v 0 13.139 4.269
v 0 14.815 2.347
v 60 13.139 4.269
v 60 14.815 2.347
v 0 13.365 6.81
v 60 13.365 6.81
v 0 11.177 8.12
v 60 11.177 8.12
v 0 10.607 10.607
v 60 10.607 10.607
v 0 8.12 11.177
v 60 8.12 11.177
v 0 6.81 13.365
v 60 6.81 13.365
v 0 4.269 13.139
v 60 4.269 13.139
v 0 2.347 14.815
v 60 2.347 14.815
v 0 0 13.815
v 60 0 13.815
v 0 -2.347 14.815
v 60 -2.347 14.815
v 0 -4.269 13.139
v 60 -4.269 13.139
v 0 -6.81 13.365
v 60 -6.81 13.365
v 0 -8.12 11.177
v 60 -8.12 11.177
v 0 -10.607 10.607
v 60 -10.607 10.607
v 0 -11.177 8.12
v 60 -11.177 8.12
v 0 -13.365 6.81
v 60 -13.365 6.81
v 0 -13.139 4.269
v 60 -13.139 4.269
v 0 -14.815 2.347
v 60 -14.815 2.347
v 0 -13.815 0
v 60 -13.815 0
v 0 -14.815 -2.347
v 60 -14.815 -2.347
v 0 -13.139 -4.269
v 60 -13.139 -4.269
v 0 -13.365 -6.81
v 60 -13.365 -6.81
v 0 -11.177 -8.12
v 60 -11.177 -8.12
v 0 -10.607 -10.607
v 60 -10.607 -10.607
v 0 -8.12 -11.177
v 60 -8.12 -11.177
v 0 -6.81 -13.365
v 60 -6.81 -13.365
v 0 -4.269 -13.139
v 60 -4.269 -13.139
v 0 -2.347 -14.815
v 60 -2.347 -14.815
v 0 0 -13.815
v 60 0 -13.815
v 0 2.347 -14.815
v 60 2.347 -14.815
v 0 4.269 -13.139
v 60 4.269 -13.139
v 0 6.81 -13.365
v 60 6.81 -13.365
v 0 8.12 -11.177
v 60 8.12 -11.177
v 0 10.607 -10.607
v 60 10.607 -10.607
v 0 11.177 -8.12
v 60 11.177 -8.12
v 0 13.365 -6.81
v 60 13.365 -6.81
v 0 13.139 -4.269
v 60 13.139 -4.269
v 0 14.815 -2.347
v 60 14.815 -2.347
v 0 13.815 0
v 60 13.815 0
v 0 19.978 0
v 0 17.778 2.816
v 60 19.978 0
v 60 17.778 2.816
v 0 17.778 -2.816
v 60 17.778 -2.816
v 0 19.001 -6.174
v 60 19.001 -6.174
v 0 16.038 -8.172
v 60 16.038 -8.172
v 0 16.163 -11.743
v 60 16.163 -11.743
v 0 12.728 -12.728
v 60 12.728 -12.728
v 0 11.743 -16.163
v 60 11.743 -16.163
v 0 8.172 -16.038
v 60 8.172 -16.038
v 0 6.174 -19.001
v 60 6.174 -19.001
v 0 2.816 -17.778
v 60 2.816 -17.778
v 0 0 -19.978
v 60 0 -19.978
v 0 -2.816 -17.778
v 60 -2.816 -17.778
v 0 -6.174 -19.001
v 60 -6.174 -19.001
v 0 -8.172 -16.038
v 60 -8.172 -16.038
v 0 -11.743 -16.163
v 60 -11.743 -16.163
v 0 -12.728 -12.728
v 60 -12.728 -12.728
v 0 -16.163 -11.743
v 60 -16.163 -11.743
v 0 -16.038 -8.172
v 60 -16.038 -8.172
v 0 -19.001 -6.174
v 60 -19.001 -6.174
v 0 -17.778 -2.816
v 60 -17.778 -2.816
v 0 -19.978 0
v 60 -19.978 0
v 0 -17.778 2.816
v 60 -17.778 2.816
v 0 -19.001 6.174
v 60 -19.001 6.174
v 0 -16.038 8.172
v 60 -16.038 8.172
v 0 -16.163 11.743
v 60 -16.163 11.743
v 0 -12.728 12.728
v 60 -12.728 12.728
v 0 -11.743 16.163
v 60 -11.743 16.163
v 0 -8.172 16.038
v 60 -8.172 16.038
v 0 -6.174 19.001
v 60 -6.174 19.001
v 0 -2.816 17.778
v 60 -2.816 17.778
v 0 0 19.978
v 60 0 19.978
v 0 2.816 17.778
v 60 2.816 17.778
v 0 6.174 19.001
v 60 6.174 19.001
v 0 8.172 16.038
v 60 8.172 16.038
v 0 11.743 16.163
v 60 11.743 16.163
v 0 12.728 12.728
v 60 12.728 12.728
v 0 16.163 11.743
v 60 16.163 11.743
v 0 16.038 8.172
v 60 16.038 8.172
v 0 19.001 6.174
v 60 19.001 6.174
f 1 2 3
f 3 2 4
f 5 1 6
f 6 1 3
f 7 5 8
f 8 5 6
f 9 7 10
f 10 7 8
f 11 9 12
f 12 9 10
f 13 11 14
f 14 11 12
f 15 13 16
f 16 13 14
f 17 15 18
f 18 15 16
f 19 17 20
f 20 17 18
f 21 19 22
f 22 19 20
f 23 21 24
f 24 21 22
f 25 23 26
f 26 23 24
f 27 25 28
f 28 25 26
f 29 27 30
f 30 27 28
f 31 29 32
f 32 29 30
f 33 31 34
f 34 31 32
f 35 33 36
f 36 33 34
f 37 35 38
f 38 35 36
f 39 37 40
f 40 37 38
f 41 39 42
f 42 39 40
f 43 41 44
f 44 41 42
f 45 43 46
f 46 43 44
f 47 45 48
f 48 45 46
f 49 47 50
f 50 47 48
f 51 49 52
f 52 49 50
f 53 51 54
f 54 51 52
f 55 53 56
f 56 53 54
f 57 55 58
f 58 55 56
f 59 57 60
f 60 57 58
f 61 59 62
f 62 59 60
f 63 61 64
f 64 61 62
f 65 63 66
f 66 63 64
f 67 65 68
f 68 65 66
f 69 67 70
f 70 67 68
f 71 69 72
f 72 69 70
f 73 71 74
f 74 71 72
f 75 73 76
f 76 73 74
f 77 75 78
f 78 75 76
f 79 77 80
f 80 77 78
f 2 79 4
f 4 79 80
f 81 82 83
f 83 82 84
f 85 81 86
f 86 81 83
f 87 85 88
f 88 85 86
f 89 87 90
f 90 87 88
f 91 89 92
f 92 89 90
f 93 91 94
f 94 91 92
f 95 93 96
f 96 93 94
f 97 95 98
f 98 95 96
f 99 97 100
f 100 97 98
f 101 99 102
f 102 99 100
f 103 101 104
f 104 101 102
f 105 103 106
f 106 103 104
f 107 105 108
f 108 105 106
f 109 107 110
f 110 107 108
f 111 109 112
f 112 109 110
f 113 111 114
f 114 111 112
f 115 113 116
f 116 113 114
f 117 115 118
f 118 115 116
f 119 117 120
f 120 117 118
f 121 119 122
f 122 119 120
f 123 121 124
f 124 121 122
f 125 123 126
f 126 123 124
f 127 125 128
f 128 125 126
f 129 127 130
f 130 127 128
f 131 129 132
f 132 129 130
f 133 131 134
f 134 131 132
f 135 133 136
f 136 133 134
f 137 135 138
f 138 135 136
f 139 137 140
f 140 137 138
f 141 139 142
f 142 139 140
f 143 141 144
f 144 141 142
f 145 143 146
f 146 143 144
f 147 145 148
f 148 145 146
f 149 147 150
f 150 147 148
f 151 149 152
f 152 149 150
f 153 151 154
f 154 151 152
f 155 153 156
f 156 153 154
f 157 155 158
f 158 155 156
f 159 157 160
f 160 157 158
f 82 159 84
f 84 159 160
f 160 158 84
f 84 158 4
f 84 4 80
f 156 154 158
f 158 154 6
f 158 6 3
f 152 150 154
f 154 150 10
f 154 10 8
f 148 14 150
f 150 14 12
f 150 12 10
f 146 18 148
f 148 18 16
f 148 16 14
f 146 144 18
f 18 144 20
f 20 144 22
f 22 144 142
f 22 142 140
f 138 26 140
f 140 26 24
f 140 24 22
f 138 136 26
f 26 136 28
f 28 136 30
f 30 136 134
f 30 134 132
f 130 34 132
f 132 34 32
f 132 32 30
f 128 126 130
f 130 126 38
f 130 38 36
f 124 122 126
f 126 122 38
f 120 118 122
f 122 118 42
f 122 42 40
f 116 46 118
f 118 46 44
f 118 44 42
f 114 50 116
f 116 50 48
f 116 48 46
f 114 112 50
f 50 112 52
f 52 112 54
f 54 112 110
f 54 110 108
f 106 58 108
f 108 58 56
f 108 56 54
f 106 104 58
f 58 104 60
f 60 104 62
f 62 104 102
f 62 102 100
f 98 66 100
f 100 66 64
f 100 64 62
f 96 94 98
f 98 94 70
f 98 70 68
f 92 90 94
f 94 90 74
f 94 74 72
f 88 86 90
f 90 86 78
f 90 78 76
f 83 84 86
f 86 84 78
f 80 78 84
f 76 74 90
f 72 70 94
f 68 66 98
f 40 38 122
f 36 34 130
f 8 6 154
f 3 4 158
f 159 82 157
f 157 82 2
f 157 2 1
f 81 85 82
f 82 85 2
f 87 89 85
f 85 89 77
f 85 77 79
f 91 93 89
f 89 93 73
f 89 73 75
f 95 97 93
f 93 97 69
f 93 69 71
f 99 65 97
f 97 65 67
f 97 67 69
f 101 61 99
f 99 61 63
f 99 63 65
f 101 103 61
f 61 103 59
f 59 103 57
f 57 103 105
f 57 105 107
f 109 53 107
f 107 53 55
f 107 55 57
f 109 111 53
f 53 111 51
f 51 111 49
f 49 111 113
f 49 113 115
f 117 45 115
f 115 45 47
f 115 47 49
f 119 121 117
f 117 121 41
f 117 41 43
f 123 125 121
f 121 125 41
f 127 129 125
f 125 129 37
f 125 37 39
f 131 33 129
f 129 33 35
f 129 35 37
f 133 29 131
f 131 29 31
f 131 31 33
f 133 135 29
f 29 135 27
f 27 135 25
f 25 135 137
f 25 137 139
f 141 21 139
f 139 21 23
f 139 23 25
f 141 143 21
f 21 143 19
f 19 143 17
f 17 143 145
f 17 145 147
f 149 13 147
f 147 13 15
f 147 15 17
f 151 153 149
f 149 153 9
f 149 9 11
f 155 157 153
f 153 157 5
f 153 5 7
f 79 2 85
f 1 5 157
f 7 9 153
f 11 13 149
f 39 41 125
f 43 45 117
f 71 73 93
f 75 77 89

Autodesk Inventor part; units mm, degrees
ref_plane "YZ Plane" through (0, 0, 0) normal (1, 0, 0) x (0, 1, 0)
ref_plane "XZ Plane" through (0, 0, 0) normal (0, 1, 0) x (-1, 0, 0)
ref_plane "XY Plane" through (0, 0, 0) normal (0, 0, 1) x (1, 0, 0)
sketch "Sketch2" plane through (0, 0, 0) normal (1, 0, 0) x (0, 1, 0)
  circle A0 centre (0, 0) radius 15 construction
  circle A1 centre (0, 0) radius 18 construction
  line L0 (17.7784, 2.8158) -> (17.7784, -2.8158) construction
  line L1 (17.7784, 2.8158) -> (0, 0) construction
  line L2 (0, 0) -> (17.7784, -2.8158) construction
  line L3 (17.7784, 2.8158) -> (19.9784, 0)
  line L4 (19.9784, 0) -> (17.7784, -2.8158)
  line L5 (19.9784, 0) -> (17.7784, 0) construction
  line L6 (14.8153, 2.3465) -> (13.8153, 0)
  line L7 (13.8153, 0) -> (14.8153, -2.3465)
  line L8 (14.8153, 2.3465) -> (14.8153, -2.3465) construction
  line L9 (13.8153, 0) -> (14.8153, 0) construction
  line L10 (16.0381, 8.1718) -> (19.0006, 6.1737)
  line L11 (19.0006, 6.1737) -> (17.7784, 2.8158)
  line L12 (13.3651, 6.8099) -> (13.1392, 4.2692)
  line L13 (13.1392, 4.2692) -> (14.8153, 2.3465)
  line L14 (12.7279, 12.7279) -> (16.1629, 11.743)
  line L15 (16.1629, 11.743) -> (16.0381, 8.1718)
  line L16 (10.6066, 10.6066) -> (11.1768, 8.1204)
  line L17 (11.1768, 8.1204) -> (13.3651, 6.8099)
  line L18 (8.1718, 16.0381) -> (11.743, 16.1629)
  line L19 (11.743, 16.1629) -> (12.7279, 12.7279)
  line L20 (6.8099, 13.3651) -> (8.1204, 11.1768)
  line L21 (8.1204, 11.1768) -> (10.6066, 10.6066)
  line L22 (2.8158, 17.7784) -> (6.1737, 19.0006)
  line L23 (6.1737, 19.0006) -> (8.1718, 16.0381)
  line L24 (2.3465, 14.8153) -> (4.2692, 13.1392)
  line L25 (4.2692, 13.1392) -> (6.8099, 13.3651)
  line L26 (-2.8158, 17.7784) -> (0, 19.9784)
  line L27 (0, 19.9784) -> (2.8158, 17.7784)
  line L28 (-2.3465, 14.8153) -> (0, 13.8153)
  line L29 (0, 13.8153) -> (2.3465, 14.8153)
  line L30 (-8.1718, 16.0381) -> (-6.1737, 19.0006)
  line L31 (-6.1737, 19.0006) -> (-2.8158, 17.7784)
  line L32 (-6.8099, 13.3651) -> (-4.2692, 13.1392)
  line L33 (-4.2692, 13.1392) -> (-2.3465, 14.8153)
  line L34 (-12.7279, 12.7279) -> (-11.743, 16.1629)
  line L35 (-11.743, 16.1629) -> (-8.1718, 16.0381)
  line L36 (-10.6066, 10.6066) -> (-8.1204, 11.1768)
  line L37 (-8.1204, 11.1768) -> (-6.8099, 13.3651)
  line L38 (-16.0381, 8.1718) -> (-16.1629, 11.743)
  line L39 (-16.1629, 11.743) -> (-12.7279, 12.7279)
  line L40 (-13.3651, 6.8099) -> (-11.1768, 8.1204)
  line L41 (-11.1768, 8.1204) -> (-10.6066, 10.6066)
  line L42 (-17.7784, 2.8158) -> (-19.0006, 6.1737)
  line L43 (-19.0006, 6.1737) -> (-16.0381, 8.1718)
  line L44 (-14.8153, 2.3465) -> (-13.1392, 4.2692)
  line L45 (-13.1392, 4.2692) -> (-13.3651, 6.8099)
  line L46 (-17.7784, -2.8158) -> (-19.9784, 0)
  line L47 (-19.9784, 0) -> (-17.7784, 2.8158)
  line L48 (-14.8153, -2.3465) -> (-13.8153, 0)
  line L49 (-13.8153, 0) -> (-14.8153, 2.3465)
  line L50 (-16.0381, -8.1718) -> (-19.0006, -6.1737)
  line L51 (-19.0006, -6.1737) -> (-17.7784, -2.8158)
  line L52 (-13.3651, -6.8099) -> (-13.1392, -4.2692)
  line L53 (-13.1392, -4.2692) -> (-14.8153, -2.3465)
  line L54 (-12.7279, -12.7279) -> (-16.1629, -11.743)
  line L55 (-16.1629, -11.743) -> (-16.0381, -8.1718)
  line L56 (-10.6066, -10.6066) -> (-11.1768, -8.1204)
  line L57 (-11.1768, -8.1204) -> (-13.3651, -6.8099)
  line L58 (-8.1718, -16.0381) -> (-11.743, -16.1629)
  line L59 (-11.743, -16.1629) -> (-12.7279, -12.7279)
  line L60 (-6.8099, -13.3651) -> (-8.1204, -11.1768)
  line L61 (-8.1204, -11.1768) -> (-10.6066, -10.6066)
  line L62 (-2.8158, -17.7784) -> (-6.1737, -19.0006)
  line L63 (-6.1737, -19.0006) -> (-8.1718, -16.0381)
  line L64 (-2.3465, -14.8153) -> (-4.2692, -13.1392)
  line L65 (-4.2692, -13.1392) -> (-6.8099, -13.3651)
  line L66 (2.8158, -17.7784) -> (0, -19.9784)
  line L67 (0, -19.9784) -> (-2.8158, -17.7784)
  line L68 (2.3465, -14.8153) -> (0, -13.8153)
  line L69 (0, -13.8153) -> (-2.3465, -14.8153)
  line L70 (8.1718, -16.0381) -> (6.1737, -19.0006)
  line L71 (6.1737, -19.0006) -> (2.8158, -17.7784)
  line L72 (6.8099, -13.3651) -> (4.2692, -13.1392)
  line L73 (4.2692, -13.1392) -> (2.3465, -14.8153)
  line L74 (12.7279, -12.7279) -> (11.743, -16.1629)
  line L75 (11.743, -16.1629) -> (8.1718, -16.0381)
  line L76 (10.6066, -10.6066) -> (8.1204, -11.1768)
  line L77 (8.1204, -11.1768) -> (6.8099, -13.3651)
  line L78 (16.0381, -8.1718) -> (16.1629, -11.743)
  line L79 (16.1629, -11.743) -> (12.7279, -12.7279)
  line L80 (13.3651, -6.8099) -> (11.1768, -8.1204)
  line L81 (11.1768, -8.1204) -> (10.6066, -10.6066)
  line L82 (17.7784, -2.8158) -> (19.0006, -6.1737)
  line L83 (19.0006, -6.1737) -> (16.0381, -8.1718)
  line L84 (14.8153, -2.3465) -> (13.1392, -4.2692)
  line L85 (13.1392, -4.2692) -> (13.3651, -6.8099)
  dimension "d15" = 30
  dimension "d16" = 36
  dimension "d19" = 18
  dimension "d20" = 2.2
  dimension "d22" = 1
  dimension "d25" = 360
extrude "Extrusion2" add sketch "Sketch2" along normal blind 60
properties part number "FlexRoller" material "PC/ABS Plastic"
